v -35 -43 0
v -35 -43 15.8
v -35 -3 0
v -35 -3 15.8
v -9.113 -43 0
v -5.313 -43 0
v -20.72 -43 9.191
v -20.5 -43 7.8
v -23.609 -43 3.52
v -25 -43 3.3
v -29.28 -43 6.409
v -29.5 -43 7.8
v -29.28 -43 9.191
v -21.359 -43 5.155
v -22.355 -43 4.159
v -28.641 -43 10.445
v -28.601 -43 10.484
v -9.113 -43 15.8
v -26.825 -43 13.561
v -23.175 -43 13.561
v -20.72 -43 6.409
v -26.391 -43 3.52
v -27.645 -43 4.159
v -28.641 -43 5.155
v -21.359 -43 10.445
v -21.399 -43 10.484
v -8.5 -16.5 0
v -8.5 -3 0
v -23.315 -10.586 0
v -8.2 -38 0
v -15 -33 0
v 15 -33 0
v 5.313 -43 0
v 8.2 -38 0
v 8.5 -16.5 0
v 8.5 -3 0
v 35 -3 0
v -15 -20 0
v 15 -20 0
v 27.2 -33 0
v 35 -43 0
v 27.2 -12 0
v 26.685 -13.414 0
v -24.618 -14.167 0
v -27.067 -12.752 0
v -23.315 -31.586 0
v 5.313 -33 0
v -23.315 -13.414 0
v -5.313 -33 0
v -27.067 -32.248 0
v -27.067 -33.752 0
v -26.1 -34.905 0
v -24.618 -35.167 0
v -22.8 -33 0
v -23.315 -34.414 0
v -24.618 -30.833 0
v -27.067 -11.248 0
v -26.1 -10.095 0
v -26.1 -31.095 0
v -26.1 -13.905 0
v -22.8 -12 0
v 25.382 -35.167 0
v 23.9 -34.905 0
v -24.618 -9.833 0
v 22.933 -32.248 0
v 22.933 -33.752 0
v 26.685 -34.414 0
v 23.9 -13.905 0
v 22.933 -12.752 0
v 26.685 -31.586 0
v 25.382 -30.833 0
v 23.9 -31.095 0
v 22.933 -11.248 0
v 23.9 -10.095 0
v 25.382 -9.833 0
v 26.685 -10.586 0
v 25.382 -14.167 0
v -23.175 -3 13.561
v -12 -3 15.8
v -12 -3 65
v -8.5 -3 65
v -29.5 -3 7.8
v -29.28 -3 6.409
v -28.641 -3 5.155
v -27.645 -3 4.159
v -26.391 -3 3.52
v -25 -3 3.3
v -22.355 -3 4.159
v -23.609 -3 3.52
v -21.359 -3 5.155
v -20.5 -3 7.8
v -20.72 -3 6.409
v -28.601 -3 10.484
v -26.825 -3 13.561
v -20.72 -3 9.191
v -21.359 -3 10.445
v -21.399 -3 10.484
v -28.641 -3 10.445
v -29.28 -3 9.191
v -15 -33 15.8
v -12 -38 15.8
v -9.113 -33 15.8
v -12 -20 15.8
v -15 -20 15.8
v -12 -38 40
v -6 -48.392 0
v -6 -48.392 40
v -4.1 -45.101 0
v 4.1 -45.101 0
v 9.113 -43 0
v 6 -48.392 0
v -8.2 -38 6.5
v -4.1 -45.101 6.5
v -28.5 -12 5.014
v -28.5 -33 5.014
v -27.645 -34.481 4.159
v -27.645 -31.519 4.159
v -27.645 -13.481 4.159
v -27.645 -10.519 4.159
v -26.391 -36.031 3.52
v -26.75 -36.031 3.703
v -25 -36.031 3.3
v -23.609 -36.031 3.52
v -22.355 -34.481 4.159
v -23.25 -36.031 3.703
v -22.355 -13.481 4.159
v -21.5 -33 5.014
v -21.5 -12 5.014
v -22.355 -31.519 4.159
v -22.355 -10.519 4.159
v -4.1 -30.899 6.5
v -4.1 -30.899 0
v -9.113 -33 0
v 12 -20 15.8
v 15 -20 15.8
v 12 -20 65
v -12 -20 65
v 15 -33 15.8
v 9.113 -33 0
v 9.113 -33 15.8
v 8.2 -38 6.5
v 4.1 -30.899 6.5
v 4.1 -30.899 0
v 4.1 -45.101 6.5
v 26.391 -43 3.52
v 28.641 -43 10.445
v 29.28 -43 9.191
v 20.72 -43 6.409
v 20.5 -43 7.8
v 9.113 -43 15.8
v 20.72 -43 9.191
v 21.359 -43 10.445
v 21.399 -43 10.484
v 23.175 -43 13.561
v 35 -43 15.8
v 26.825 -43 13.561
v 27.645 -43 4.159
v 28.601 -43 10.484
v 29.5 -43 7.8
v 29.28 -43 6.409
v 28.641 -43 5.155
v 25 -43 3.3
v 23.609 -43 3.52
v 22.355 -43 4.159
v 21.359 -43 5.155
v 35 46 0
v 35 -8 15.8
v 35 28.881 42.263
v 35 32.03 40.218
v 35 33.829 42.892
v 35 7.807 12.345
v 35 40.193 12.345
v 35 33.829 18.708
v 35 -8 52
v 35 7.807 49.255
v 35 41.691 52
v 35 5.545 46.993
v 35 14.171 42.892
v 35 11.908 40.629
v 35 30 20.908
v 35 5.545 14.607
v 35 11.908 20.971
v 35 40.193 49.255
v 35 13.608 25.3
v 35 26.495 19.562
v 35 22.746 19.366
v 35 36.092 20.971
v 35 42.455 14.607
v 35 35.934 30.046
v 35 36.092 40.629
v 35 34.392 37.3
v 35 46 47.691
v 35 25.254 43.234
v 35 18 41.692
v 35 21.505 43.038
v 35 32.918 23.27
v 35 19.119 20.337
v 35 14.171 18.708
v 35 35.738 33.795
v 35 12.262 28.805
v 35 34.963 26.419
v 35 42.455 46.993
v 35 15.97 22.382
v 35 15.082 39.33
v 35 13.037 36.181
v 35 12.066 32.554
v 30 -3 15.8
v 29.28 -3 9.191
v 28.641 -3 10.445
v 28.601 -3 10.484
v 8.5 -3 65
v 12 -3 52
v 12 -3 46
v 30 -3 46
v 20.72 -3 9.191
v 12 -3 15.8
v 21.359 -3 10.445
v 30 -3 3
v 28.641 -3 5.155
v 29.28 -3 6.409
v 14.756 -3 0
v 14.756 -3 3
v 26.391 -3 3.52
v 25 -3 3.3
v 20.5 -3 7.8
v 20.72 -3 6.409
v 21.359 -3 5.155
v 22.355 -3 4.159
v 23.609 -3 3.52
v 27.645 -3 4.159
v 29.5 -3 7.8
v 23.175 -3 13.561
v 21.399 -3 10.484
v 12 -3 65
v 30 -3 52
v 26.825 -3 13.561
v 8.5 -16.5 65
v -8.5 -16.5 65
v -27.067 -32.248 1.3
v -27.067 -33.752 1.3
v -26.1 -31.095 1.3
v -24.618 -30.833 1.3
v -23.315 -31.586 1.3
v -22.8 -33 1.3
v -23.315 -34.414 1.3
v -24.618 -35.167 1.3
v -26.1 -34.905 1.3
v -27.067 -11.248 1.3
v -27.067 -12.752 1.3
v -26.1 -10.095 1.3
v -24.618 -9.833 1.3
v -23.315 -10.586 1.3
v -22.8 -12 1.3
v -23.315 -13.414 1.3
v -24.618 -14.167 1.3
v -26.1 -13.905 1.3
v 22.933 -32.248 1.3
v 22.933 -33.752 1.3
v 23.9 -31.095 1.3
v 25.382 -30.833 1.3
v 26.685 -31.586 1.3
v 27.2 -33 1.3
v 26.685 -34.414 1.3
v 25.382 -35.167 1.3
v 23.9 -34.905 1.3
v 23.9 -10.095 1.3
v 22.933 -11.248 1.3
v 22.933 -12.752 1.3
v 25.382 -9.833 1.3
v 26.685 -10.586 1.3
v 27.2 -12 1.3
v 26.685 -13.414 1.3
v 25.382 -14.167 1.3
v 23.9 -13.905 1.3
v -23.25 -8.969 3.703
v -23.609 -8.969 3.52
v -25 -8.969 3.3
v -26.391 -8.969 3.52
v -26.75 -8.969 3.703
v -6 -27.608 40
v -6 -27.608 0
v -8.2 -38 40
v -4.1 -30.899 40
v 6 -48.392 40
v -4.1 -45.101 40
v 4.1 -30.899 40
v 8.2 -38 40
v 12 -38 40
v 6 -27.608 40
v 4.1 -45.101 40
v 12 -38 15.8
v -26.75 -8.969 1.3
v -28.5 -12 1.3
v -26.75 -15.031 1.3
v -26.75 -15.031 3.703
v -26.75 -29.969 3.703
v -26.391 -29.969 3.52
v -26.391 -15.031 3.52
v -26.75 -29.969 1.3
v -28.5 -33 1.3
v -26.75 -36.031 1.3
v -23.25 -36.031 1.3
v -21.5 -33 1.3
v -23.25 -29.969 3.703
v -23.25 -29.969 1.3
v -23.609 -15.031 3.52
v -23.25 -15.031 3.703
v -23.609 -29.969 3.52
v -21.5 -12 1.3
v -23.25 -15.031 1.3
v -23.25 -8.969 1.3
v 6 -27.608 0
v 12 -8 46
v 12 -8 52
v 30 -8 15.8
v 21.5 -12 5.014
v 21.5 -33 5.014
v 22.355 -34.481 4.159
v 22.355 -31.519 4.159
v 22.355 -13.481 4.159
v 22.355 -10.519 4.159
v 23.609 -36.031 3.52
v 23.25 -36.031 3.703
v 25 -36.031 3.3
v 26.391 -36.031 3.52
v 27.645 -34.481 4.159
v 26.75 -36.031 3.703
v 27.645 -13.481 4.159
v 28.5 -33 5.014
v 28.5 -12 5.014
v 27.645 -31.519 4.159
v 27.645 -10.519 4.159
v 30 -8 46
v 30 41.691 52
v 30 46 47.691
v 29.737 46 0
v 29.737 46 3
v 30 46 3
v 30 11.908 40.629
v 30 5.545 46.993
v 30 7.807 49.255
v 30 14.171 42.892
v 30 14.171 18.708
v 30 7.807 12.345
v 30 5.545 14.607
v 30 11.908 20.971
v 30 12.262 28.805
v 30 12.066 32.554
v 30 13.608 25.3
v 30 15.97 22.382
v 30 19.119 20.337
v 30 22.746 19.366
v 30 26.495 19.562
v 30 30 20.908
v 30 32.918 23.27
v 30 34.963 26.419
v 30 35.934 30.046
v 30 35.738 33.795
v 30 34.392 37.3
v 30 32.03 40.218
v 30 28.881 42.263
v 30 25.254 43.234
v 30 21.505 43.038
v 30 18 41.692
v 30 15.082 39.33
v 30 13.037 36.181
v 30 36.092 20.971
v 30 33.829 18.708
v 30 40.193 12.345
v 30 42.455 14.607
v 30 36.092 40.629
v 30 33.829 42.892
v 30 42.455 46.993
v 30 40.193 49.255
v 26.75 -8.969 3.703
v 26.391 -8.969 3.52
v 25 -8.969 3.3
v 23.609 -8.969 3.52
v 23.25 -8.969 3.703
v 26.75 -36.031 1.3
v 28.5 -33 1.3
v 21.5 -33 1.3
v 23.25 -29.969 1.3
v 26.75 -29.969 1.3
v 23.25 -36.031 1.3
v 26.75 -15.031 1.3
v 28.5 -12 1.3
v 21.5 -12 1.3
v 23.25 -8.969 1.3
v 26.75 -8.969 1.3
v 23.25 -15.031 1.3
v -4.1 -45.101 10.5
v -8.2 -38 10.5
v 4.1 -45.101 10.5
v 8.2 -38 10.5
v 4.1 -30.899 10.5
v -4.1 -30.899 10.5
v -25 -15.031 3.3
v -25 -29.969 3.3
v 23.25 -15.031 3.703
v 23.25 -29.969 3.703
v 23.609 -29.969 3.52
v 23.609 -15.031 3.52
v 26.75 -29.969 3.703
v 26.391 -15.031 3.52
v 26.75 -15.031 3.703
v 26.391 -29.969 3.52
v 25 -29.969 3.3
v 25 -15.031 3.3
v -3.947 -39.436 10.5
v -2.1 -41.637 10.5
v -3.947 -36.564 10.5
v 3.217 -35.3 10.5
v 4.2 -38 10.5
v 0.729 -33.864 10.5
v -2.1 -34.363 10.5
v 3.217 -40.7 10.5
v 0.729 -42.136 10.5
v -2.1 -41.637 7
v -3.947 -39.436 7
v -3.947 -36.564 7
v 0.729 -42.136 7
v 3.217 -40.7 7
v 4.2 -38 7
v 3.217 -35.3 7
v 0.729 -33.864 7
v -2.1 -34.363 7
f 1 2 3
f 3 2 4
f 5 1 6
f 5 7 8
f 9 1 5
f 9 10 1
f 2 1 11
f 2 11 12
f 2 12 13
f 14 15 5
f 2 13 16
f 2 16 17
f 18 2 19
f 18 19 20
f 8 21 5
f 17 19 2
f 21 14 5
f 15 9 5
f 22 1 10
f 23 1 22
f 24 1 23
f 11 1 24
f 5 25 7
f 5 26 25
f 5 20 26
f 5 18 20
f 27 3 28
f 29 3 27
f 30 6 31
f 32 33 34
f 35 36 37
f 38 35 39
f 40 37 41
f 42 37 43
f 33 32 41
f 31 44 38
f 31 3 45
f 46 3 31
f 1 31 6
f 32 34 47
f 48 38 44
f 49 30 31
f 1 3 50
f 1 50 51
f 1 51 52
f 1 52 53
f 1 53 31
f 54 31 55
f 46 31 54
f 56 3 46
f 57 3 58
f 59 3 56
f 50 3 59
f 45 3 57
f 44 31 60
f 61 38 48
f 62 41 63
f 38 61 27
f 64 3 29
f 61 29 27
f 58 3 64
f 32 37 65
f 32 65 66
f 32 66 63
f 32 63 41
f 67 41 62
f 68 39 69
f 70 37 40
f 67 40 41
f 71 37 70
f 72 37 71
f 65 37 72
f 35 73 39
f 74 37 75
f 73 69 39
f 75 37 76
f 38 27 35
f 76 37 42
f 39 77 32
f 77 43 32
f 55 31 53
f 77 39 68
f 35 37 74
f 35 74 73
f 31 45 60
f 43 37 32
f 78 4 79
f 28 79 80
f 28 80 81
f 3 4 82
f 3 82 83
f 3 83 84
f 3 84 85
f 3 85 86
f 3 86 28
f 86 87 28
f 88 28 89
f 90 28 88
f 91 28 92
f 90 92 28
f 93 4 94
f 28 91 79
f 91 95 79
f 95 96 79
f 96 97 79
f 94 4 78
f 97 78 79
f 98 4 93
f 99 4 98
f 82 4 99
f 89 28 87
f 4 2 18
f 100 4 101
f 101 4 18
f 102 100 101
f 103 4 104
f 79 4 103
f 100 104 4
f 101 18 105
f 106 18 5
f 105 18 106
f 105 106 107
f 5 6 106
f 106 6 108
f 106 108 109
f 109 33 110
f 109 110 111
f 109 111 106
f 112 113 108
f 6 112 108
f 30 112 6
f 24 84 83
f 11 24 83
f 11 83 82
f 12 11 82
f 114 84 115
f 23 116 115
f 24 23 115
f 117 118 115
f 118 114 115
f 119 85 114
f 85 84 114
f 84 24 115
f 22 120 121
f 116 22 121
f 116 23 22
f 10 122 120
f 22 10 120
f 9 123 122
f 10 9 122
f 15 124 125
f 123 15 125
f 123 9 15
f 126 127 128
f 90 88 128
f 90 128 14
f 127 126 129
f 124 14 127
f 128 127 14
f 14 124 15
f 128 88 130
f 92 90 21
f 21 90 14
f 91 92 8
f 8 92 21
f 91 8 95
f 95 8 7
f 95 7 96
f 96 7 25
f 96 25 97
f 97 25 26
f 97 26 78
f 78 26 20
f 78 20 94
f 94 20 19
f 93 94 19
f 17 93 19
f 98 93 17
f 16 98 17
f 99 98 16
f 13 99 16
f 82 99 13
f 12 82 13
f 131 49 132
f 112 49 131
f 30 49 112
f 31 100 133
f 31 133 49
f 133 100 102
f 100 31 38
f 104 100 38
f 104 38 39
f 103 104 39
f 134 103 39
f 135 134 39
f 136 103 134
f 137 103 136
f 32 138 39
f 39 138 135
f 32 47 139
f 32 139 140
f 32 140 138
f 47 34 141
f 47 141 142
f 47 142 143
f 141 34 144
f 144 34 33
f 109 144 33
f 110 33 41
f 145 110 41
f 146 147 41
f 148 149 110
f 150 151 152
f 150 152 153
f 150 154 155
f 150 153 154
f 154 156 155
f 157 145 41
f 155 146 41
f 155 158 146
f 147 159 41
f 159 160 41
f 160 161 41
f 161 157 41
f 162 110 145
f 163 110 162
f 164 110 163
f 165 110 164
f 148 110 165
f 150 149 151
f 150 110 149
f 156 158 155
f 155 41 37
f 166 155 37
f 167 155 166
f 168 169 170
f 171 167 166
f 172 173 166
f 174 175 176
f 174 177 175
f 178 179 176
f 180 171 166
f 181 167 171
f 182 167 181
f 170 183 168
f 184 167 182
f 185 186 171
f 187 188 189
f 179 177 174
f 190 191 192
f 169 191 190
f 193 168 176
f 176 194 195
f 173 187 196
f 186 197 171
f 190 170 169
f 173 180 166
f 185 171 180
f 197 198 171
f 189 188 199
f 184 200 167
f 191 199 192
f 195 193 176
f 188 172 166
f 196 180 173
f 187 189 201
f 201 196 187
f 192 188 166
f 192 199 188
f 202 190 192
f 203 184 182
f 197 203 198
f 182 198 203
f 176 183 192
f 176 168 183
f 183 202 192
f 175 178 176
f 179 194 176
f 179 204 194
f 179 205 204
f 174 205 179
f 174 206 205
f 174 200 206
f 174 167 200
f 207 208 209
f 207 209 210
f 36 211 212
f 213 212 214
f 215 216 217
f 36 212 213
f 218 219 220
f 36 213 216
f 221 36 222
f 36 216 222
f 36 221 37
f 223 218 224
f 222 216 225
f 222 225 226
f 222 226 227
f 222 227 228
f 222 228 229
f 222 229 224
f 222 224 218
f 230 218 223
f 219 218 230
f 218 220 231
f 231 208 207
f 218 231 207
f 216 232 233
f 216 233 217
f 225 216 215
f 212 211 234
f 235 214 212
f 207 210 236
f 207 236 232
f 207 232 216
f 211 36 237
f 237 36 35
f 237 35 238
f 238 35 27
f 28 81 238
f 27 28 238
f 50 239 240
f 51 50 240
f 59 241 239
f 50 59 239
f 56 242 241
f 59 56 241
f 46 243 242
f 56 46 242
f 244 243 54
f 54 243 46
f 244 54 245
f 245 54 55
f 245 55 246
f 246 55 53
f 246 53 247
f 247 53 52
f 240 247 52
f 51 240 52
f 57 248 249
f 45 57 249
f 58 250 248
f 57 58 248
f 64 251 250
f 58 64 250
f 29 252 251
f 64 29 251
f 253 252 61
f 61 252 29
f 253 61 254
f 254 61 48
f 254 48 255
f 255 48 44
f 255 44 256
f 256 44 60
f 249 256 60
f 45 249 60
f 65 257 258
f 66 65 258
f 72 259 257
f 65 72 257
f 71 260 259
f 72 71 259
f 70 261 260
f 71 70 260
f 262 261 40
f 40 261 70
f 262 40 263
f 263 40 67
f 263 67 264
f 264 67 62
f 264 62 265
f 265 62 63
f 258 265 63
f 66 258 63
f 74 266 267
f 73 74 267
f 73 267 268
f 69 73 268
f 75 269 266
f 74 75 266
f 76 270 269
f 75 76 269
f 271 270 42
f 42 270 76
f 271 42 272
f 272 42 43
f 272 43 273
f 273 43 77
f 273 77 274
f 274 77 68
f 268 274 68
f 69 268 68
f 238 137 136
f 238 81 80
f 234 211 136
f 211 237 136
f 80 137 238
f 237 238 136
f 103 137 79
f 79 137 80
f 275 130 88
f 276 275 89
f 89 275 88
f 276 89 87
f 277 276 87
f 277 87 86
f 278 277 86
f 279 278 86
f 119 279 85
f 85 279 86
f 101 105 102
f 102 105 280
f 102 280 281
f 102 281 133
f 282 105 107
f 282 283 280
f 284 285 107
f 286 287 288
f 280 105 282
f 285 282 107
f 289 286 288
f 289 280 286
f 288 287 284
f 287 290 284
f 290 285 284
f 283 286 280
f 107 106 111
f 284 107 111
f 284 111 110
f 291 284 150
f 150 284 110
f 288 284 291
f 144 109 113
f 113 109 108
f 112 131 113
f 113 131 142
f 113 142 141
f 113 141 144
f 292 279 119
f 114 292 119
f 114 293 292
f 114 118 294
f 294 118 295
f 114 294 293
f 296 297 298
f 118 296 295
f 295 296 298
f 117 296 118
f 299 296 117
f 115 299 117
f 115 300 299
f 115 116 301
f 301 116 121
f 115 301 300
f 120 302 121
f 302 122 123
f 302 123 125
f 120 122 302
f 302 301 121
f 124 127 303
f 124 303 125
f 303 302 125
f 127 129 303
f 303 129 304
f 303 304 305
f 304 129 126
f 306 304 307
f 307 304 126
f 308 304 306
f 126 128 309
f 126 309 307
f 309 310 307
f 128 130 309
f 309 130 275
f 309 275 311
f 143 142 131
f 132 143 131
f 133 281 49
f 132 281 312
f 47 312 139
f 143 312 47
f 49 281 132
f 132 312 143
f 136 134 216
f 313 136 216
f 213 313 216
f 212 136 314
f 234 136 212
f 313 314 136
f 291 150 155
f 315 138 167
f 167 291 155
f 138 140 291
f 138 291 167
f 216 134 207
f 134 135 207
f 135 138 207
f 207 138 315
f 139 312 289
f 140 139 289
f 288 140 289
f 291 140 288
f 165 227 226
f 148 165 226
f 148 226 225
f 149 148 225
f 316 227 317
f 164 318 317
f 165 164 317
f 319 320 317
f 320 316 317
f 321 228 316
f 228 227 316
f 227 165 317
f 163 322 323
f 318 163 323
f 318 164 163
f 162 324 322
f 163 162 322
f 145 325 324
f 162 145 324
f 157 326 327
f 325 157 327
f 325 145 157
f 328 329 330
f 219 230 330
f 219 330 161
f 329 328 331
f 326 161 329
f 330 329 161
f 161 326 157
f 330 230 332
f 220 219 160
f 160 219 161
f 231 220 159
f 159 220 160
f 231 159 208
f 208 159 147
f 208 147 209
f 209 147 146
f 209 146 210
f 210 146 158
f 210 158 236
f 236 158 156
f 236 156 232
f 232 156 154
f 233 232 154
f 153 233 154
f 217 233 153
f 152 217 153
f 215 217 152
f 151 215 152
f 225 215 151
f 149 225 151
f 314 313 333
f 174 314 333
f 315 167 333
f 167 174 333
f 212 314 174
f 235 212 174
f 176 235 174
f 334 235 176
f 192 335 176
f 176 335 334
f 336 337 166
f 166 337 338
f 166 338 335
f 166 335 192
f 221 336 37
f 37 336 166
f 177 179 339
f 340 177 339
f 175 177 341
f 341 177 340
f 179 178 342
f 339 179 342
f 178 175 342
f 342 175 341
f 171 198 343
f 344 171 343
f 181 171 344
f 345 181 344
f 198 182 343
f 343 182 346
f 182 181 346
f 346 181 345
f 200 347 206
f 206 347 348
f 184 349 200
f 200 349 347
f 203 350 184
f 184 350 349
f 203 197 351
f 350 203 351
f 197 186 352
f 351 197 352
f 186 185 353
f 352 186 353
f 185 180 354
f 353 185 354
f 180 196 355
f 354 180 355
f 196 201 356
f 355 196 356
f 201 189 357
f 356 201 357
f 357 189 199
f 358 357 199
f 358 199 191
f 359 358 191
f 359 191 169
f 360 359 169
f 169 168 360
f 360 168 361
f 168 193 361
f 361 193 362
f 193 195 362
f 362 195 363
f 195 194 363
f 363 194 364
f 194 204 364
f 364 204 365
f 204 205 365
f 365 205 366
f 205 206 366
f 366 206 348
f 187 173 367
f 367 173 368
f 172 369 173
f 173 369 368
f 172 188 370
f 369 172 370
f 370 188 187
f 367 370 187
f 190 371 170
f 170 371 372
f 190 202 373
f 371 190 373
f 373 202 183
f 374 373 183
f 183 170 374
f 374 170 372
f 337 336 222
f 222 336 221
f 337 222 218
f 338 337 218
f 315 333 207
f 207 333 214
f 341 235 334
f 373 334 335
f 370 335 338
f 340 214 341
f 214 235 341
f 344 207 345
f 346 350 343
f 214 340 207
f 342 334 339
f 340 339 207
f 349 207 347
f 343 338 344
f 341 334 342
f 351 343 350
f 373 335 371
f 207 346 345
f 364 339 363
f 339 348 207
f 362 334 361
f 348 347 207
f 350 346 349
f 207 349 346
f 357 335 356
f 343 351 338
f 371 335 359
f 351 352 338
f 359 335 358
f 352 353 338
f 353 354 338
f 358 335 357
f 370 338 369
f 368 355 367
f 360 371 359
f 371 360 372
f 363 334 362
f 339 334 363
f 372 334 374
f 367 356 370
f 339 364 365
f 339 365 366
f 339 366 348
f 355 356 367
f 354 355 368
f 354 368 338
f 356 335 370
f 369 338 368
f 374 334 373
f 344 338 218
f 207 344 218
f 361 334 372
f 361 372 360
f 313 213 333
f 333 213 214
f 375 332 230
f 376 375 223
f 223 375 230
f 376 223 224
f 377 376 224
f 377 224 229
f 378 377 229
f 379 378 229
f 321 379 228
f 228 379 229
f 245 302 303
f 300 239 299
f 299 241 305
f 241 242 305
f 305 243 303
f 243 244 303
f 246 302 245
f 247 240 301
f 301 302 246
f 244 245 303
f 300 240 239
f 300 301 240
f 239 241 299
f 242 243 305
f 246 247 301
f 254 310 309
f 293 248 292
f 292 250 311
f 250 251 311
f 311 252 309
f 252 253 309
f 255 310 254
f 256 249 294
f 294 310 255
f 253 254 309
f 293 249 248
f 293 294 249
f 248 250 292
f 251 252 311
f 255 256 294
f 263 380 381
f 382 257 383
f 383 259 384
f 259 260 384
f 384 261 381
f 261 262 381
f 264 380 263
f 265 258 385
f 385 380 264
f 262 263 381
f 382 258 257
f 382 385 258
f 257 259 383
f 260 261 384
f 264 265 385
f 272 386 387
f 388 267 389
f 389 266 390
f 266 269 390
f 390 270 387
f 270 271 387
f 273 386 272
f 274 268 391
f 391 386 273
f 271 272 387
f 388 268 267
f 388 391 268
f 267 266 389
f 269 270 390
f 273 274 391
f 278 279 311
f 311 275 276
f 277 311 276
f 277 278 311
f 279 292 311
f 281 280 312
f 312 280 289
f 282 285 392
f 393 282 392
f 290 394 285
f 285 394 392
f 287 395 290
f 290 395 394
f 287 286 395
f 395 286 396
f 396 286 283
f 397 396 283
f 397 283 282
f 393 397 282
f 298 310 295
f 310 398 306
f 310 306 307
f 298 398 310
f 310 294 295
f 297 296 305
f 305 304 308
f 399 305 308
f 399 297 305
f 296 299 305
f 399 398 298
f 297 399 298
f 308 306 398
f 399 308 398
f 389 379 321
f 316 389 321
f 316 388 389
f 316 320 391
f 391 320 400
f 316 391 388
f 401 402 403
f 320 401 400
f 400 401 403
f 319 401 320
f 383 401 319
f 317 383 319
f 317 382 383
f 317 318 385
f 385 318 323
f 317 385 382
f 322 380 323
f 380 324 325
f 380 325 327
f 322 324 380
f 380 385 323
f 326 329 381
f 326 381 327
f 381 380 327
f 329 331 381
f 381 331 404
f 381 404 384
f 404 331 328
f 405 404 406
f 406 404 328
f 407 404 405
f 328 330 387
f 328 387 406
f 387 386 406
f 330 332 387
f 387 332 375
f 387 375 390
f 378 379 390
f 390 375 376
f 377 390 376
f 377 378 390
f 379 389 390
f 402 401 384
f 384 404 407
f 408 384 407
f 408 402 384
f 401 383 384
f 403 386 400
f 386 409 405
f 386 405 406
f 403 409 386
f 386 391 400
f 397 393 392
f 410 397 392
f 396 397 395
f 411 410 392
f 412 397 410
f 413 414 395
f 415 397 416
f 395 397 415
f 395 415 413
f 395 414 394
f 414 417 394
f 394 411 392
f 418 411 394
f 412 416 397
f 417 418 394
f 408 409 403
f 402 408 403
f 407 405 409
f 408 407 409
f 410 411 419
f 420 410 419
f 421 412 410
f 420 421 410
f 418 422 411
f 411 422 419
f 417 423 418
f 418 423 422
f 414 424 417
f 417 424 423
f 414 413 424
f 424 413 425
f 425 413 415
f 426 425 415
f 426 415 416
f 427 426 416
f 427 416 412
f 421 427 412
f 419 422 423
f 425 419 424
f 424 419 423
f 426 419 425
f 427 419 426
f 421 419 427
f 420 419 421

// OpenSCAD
// file: configuration.scad
// PRUSA Mendel  
// Configuration file
// GNU GPL v2
// Josef Průša
// josefprusa@me.com
// prusadjs.cz
// http://www.reprap.org/wiki/Prusa_Mendel
// http://github.com/prusajr/PrusaMendel

// PLEASE SELECT ONE OF THE CONFIGURATIONS BELOW
// BY UN-COMMENTING IT

variant=0; //0 for metric
//variant=1; //1 for SAE
if(variant==0){
echo("variant: metric");
}else if(variant==1){
echo("variant: sae");
} else{
echo("WARNING: INVALID CONFIGURATION");
}


vars=[
//[m8_dia, m8_nut, m4_dia, m4_nut, m3_dia, m3_nut, bush_dia, mot_shaft, bush_rod, bush_outerdia, bush_length]
[8.4,16.4,5,9,4.4,7,11,5.3,8,16,11],//metric
[9,16.4,5.5,10,5.5,10,11.5,5.3,7.9375,16,11]//SAE
];

//BUSHING TYPE Can generate three versions
// 1 - regular old ones
// 2 - helical ones
// 3 - holders for brass or any other bought bushings
bushing_type = 2;

//DO NOT TOUCH THIS SECTION!
m8_diameter = vars[variant][0];
m8_nut_diameter = vars[variant][1];
m4_diameter = vars[variant][2];
m4_nut_diameter = vars[variant][3];
m3_diameter = vars[variant][4];
m3_nut_diameter = vars[variant][5];
bushing_diameter = vars[variant][6];
motor_shaft=vars[variant][7];
bushing_rodsize = vars[variant][8];
bushing_outerDiameter = vars[variant][9];
bushing_lenght = vars[variant][10];


// MINI-HUXLEY VERSION (TODO, just place holder)
// include <configuration-huxley.scad>

// MEGA VERSION (TODO, just place holder)
// include <configuration-mega.scad>
// main file
// PRUSA Mendel  
// X-end with NEMA 17 motor mount
// GNU GPL v2
// Josef Průša
// josefprusa@me.com
// prusadjs.cz
// http://www.reprap.org/wiki/Prusa_Mendel
// http://github.com/prusajr/PrusaMendel

include <configuration.scad>

/**
 *@name X end motor
 *@using 2 bushing
 *@using 8 m3x10
 *@using 4 m3xnut
 *@using 4 m3xwasher
 *@using 1 m8spring
 *@using 2 m8nut
 */
module xendmotor(){
translate(v = [0,17,24.5]) union(){
difference(){
union(){
//translate(v = [0, -25, 0]) cube(size = [70,70,5], center = true);
translate(v = [-25, -40, -16.6])cube(size = [20,40,15.8], center = true);
translate(v = [25, -40, -16.6])cube(size = [20,40,15.8], center = true);
}


//nut traps

translate(v = [-25, -29, -19.7]) cylinder(h = 7, r=m3_nut_diameter/2, $fn=6, center=true);
translate(v = [-25, -29, -20]) cylinder(h = 10, r=m3_diameter/2, $fn=9, center=true);
translate(v = [25, -29, -19.7]) cylinder(h = 7, r=m3_nut_diameter/2, $fn=6, center=true);
translate(v = [25, -29, -20]) cylinder(h = 10, r=m3_diameter/2, $fn=9, center=true);

translate(v = [-25, -50, -19.7]) cylinder(h = 7, r=m3_nut_diameter/2, $fn=6, center=true);
translate(v = [-25, -50, -20]) cylinder(h = 10, r=m3_diameter/2, $fn=9, center=true);
translate(v = [25, -50, -19.7]) cylinder(h = 7, r=m3_nut_diameter/2, $fn=6, center=true);
translate(v = [25, -50, -20]) cylinder(h = 10, r=m3_diameter/2, $fn=9, center=true);

//holes for axis
translate(v = [-25, -18-22, -16.7]) rotate(a=[90,0,0]) {
	cylinder(h = 42, r=4.5, $fn=20, center=true);
	translate(v = [0, 2.60, 0]) cylinder(h = 42, r=3.65, $fn=6, center=true);
}
translate(v = [25, -18-22, -16.7]) rotate(a=[90,0,0]) {
	cylinder(h = 42, r=4.5, $fn=20, center=true);
	translate(v = [0, 2.60, 0]) cylinder(h = 42, r=3.65, $fn=6, center=true);
}
//slider cutouts
translate(v = [0, -25, 15]) 
	difference(){
	translate(v = [0, -0, -14.5])cube(size = [23,23,50], center = true);
	}
//nut trap
translate(v = [0, -55, 15]) {
	difference(){
	translate(v = [0, -0, -15])cylinder(h = 50, r=12, $fn=6, center=true);
	}
}
}

//slider
translate(v = [0, -25, 15]) 
	difference(){
union(){
	translate(v = [0, -3.5, -7])cube(size = [24,17,65], center = true);

	translate(v = [0, -3.5, -31.6]) cube(size = [35,17,15.8], center = true);}
	translate(v = [0, -0, -7])cube(size = [17,17,70], center = true);}

//nut trap
translate(v = [0, -55, 15]) {
difference(){
	union(){difference(){
union(){
	translate(v = [0, -0, -19.5])cylinder(h = 40, r=12, $fn=6, center=true);
	translate(v = [0, 0, -31.6]) cube(size = [35,10,15.8], center = true);}
	cylinder(h = 90, r=m8_nut_diameter/2, $fn=6, center=true);
	}
	translate(v = [0, 0, -31]) cylinder(h = 4, r=11, $fn=6, center=true);}
	translate(v = [0, 0, 12.5]) cylinder(h = 90, r=m8_diameter/2, $fn=9, center=true);
}
}


//nema17 connector
translate(v = [0, 0, -12]) difference(){
union(){
translate(v = [21, -22.5, 36.5]) cube(size = [24,5,6], center = true);
translate(v = [32.5, 2, 13.5]) cube(size = [5,54,52], center = true);
translate(v = [22.5, 2, -11]) cube(size = [20,54,3], center = true);}

// some reduction of bottom part 
translate(v = [15, 15, -11]) rotate ([0,0,-17]) cube(size = [20,70,25], center = true);

translate(v = [0, 0, -4.7]){
	translate(v = [32.5, 7, 23.5]) rotate(a=[0,90,0]) rotate(a=[0,0,30]) cylinder(h = 10, r=12, $fn=20, center=true);

translate(v = [30, 7, 23]) rotate(a=[0,90,0]){rotate ([0,0,45]) translate([20,0,0]) cube(size = [9,3.2,25], center = true);
rotate ([0,0,-45]) translate([20,0,0]) cube(size = [9,3.2,25], center = true);
rotate ([0,0,135]) translate([20,0,0]) cube(size = [9,3.2,25], center = true);
rotate ([0,0,-135]) translate([20,0,0]) cube(size = [9,3.2,25], center = true);

rotate ([0,0,135]) translate([32,0,0]) cube(size = [9,20,25], center = true);
}
}
}}
}
xendmotor();
